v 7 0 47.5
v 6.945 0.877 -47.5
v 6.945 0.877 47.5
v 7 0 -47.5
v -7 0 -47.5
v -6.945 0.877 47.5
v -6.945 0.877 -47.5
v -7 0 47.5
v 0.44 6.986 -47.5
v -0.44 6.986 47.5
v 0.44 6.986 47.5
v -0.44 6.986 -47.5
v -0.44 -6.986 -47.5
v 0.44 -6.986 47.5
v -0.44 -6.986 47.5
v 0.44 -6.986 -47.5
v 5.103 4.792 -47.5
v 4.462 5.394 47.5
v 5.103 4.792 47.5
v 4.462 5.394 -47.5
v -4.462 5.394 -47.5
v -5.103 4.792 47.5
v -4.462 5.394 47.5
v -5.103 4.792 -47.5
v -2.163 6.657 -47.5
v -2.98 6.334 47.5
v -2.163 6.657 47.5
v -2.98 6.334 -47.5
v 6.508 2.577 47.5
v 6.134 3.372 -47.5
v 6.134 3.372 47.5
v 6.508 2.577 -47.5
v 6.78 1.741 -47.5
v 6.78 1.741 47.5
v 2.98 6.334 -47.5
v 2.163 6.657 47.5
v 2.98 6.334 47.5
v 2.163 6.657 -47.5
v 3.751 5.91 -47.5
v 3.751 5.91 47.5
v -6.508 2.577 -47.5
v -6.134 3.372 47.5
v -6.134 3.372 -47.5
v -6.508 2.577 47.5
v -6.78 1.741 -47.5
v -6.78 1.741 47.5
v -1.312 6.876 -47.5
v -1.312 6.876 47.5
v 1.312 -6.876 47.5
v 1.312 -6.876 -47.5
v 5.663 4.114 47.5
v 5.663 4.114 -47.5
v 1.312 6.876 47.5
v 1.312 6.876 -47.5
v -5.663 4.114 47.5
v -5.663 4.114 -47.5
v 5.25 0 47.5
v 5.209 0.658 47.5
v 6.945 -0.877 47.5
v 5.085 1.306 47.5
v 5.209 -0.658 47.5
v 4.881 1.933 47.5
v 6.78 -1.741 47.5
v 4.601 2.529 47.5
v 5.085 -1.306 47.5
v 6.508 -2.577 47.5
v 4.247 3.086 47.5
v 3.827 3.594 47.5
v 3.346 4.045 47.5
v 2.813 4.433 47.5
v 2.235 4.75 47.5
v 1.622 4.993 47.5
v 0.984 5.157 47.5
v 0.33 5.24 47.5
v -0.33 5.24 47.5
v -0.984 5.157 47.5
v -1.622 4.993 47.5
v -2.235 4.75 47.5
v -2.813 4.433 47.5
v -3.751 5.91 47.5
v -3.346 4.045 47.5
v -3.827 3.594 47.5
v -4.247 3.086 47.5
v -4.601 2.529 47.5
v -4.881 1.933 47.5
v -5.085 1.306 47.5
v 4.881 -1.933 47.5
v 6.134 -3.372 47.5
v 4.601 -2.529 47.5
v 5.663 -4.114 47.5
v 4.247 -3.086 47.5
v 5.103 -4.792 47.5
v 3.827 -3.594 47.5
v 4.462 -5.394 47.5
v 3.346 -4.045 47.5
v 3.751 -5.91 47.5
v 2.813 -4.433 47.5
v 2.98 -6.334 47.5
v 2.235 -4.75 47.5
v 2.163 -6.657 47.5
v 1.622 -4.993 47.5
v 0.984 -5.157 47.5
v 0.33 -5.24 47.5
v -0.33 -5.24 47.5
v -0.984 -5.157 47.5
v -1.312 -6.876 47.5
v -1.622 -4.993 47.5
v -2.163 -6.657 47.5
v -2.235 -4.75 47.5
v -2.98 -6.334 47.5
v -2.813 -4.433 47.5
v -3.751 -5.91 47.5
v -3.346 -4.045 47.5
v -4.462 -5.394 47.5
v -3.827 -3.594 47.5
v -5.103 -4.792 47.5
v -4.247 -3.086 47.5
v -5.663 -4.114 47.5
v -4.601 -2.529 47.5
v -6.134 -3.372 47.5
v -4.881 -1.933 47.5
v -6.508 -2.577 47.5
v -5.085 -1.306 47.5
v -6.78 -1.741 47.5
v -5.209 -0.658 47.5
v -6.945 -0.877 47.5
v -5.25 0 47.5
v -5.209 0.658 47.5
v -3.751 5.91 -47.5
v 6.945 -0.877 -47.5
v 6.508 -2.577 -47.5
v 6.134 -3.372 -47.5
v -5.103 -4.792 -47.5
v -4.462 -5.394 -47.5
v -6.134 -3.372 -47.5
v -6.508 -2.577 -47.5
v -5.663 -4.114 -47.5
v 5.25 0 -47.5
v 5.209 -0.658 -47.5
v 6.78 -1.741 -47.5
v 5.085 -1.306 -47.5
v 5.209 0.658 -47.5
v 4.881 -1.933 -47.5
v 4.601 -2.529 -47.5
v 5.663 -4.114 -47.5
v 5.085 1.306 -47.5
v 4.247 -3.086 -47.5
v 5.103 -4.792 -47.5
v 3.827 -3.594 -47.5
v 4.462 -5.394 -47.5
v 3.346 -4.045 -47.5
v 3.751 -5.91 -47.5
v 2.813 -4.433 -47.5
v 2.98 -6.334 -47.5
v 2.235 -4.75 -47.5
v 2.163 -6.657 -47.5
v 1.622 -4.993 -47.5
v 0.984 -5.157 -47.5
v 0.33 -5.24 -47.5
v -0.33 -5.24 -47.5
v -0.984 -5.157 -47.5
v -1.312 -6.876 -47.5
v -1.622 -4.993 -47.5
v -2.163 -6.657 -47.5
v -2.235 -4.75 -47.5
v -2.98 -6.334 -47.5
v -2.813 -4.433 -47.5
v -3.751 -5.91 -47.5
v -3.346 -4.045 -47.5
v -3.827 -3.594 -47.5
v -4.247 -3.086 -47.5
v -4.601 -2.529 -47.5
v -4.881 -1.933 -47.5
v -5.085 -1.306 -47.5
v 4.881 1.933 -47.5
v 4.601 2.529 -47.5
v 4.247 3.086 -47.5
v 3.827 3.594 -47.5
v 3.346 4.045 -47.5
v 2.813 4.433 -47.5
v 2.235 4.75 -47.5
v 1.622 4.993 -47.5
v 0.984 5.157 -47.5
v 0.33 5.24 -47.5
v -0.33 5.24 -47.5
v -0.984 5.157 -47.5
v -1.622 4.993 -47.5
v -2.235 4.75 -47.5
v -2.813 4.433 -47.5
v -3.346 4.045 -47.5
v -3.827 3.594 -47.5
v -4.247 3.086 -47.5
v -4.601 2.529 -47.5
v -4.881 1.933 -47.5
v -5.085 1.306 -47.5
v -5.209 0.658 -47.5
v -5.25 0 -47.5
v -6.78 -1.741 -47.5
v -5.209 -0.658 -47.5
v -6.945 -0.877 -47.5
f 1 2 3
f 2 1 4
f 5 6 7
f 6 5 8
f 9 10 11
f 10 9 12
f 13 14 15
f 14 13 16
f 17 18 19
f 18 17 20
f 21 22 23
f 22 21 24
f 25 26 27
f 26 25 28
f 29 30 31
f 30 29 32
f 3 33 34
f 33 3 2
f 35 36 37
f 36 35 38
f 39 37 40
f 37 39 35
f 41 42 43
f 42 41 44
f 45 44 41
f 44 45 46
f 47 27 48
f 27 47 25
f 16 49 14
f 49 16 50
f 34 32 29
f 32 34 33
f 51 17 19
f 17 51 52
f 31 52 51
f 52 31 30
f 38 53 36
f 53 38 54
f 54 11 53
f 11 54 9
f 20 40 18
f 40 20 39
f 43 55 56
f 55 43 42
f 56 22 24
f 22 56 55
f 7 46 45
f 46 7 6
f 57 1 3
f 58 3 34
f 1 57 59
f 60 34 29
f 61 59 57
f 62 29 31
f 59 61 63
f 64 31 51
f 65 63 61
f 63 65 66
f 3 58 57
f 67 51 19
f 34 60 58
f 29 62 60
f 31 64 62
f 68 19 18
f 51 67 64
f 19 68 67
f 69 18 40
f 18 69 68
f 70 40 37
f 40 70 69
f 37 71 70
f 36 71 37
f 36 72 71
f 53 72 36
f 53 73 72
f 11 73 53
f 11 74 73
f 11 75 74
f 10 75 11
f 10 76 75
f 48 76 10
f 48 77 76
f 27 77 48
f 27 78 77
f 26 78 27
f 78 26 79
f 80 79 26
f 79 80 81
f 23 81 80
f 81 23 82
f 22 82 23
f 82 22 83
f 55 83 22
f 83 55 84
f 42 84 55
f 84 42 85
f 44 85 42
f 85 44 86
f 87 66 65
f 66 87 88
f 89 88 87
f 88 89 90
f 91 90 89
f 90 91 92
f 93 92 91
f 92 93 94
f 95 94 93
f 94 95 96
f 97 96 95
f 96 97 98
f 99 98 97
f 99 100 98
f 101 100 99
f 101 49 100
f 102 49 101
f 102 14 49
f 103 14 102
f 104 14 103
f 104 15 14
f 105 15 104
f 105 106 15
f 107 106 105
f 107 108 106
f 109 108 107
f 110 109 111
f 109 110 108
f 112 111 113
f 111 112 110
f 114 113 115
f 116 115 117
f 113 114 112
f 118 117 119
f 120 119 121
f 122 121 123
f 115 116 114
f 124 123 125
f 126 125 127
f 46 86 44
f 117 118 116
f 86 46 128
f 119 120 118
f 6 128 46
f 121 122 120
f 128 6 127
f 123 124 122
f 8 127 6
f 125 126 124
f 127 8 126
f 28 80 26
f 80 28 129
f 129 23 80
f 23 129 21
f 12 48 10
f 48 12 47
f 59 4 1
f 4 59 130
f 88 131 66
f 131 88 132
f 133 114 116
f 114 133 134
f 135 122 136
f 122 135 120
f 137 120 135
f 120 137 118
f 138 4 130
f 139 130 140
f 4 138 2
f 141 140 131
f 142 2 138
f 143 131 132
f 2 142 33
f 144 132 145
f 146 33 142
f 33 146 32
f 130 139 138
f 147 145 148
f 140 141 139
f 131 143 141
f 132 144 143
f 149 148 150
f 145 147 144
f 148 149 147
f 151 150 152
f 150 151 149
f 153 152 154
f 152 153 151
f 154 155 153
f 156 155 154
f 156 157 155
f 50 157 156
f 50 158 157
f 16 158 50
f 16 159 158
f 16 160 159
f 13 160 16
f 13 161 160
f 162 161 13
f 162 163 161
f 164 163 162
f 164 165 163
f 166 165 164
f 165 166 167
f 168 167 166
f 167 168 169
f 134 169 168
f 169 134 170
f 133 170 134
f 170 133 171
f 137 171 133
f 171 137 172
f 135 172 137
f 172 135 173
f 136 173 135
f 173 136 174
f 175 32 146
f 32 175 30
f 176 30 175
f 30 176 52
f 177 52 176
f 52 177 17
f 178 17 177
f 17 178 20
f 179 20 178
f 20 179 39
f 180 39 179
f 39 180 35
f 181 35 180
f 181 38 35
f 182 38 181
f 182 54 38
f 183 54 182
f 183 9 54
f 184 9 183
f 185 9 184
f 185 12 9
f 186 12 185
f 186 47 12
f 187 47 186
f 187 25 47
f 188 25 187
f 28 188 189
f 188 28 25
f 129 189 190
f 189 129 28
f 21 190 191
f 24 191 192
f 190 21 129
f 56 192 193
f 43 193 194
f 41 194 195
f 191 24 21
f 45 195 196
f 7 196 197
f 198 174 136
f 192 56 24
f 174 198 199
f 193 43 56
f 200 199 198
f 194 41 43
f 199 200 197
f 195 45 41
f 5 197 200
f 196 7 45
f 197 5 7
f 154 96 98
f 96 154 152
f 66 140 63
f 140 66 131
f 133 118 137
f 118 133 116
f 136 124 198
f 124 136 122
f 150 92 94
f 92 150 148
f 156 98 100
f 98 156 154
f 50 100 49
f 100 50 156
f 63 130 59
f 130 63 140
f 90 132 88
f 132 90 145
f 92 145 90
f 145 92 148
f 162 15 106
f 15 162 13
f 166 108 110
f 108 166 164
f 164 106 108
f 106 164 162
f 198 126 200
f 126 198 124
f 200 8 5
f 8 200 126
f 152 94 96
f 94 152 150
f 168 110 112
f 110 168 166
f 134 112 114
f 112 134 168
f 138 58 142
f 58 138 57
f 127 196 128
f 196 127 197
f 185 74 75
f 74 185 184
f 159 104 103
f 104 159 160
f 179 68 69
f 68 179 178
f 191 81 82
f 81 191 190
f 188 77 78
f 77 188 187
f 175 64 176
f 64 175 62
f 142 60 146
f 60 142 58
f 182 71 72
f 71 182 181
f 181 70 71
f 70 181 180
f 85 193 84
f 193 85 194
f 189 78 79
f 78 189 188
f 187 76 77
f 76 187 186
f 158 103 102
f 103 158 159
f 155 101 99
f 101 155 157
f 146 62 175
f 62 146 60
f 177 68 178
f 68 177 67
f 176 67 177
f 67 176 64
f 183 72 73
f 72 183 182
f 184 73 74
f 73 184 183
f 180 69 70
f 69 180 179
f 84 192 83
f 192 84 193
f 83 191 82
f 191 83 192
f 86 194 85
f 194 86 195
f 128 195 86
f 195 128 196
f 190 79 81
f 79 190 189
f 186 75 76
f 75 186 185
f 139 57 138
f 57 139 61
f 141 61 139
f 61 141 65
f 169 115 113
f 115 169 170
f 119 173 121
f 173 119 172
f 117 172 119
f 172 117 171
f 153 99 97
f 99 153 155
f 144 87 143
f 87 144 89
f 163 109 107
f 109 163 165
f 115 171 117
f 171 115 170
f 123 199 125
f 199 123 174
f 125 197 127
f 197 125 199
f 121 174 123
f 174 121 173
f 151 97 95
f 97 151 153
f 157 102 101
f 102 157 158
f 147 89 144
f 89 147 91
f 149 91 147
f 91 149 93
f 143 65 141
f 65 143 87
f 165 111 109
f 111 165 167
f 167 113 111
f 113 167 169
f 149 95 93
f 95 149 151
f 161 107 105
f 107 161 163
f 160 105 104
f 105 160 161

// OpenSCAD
$fn = 50;


difference() {
	union() {
		translate(v = [0, 0, -47.5000000000]) {
			cylinder(h = 95, r = 7.0000000000);
		}
	}
	union() {
		translate(v = [0, 0, -100.0000000000]) {
			cylinder(h = 200, r = 5.2500000000);
		}
	}
}
